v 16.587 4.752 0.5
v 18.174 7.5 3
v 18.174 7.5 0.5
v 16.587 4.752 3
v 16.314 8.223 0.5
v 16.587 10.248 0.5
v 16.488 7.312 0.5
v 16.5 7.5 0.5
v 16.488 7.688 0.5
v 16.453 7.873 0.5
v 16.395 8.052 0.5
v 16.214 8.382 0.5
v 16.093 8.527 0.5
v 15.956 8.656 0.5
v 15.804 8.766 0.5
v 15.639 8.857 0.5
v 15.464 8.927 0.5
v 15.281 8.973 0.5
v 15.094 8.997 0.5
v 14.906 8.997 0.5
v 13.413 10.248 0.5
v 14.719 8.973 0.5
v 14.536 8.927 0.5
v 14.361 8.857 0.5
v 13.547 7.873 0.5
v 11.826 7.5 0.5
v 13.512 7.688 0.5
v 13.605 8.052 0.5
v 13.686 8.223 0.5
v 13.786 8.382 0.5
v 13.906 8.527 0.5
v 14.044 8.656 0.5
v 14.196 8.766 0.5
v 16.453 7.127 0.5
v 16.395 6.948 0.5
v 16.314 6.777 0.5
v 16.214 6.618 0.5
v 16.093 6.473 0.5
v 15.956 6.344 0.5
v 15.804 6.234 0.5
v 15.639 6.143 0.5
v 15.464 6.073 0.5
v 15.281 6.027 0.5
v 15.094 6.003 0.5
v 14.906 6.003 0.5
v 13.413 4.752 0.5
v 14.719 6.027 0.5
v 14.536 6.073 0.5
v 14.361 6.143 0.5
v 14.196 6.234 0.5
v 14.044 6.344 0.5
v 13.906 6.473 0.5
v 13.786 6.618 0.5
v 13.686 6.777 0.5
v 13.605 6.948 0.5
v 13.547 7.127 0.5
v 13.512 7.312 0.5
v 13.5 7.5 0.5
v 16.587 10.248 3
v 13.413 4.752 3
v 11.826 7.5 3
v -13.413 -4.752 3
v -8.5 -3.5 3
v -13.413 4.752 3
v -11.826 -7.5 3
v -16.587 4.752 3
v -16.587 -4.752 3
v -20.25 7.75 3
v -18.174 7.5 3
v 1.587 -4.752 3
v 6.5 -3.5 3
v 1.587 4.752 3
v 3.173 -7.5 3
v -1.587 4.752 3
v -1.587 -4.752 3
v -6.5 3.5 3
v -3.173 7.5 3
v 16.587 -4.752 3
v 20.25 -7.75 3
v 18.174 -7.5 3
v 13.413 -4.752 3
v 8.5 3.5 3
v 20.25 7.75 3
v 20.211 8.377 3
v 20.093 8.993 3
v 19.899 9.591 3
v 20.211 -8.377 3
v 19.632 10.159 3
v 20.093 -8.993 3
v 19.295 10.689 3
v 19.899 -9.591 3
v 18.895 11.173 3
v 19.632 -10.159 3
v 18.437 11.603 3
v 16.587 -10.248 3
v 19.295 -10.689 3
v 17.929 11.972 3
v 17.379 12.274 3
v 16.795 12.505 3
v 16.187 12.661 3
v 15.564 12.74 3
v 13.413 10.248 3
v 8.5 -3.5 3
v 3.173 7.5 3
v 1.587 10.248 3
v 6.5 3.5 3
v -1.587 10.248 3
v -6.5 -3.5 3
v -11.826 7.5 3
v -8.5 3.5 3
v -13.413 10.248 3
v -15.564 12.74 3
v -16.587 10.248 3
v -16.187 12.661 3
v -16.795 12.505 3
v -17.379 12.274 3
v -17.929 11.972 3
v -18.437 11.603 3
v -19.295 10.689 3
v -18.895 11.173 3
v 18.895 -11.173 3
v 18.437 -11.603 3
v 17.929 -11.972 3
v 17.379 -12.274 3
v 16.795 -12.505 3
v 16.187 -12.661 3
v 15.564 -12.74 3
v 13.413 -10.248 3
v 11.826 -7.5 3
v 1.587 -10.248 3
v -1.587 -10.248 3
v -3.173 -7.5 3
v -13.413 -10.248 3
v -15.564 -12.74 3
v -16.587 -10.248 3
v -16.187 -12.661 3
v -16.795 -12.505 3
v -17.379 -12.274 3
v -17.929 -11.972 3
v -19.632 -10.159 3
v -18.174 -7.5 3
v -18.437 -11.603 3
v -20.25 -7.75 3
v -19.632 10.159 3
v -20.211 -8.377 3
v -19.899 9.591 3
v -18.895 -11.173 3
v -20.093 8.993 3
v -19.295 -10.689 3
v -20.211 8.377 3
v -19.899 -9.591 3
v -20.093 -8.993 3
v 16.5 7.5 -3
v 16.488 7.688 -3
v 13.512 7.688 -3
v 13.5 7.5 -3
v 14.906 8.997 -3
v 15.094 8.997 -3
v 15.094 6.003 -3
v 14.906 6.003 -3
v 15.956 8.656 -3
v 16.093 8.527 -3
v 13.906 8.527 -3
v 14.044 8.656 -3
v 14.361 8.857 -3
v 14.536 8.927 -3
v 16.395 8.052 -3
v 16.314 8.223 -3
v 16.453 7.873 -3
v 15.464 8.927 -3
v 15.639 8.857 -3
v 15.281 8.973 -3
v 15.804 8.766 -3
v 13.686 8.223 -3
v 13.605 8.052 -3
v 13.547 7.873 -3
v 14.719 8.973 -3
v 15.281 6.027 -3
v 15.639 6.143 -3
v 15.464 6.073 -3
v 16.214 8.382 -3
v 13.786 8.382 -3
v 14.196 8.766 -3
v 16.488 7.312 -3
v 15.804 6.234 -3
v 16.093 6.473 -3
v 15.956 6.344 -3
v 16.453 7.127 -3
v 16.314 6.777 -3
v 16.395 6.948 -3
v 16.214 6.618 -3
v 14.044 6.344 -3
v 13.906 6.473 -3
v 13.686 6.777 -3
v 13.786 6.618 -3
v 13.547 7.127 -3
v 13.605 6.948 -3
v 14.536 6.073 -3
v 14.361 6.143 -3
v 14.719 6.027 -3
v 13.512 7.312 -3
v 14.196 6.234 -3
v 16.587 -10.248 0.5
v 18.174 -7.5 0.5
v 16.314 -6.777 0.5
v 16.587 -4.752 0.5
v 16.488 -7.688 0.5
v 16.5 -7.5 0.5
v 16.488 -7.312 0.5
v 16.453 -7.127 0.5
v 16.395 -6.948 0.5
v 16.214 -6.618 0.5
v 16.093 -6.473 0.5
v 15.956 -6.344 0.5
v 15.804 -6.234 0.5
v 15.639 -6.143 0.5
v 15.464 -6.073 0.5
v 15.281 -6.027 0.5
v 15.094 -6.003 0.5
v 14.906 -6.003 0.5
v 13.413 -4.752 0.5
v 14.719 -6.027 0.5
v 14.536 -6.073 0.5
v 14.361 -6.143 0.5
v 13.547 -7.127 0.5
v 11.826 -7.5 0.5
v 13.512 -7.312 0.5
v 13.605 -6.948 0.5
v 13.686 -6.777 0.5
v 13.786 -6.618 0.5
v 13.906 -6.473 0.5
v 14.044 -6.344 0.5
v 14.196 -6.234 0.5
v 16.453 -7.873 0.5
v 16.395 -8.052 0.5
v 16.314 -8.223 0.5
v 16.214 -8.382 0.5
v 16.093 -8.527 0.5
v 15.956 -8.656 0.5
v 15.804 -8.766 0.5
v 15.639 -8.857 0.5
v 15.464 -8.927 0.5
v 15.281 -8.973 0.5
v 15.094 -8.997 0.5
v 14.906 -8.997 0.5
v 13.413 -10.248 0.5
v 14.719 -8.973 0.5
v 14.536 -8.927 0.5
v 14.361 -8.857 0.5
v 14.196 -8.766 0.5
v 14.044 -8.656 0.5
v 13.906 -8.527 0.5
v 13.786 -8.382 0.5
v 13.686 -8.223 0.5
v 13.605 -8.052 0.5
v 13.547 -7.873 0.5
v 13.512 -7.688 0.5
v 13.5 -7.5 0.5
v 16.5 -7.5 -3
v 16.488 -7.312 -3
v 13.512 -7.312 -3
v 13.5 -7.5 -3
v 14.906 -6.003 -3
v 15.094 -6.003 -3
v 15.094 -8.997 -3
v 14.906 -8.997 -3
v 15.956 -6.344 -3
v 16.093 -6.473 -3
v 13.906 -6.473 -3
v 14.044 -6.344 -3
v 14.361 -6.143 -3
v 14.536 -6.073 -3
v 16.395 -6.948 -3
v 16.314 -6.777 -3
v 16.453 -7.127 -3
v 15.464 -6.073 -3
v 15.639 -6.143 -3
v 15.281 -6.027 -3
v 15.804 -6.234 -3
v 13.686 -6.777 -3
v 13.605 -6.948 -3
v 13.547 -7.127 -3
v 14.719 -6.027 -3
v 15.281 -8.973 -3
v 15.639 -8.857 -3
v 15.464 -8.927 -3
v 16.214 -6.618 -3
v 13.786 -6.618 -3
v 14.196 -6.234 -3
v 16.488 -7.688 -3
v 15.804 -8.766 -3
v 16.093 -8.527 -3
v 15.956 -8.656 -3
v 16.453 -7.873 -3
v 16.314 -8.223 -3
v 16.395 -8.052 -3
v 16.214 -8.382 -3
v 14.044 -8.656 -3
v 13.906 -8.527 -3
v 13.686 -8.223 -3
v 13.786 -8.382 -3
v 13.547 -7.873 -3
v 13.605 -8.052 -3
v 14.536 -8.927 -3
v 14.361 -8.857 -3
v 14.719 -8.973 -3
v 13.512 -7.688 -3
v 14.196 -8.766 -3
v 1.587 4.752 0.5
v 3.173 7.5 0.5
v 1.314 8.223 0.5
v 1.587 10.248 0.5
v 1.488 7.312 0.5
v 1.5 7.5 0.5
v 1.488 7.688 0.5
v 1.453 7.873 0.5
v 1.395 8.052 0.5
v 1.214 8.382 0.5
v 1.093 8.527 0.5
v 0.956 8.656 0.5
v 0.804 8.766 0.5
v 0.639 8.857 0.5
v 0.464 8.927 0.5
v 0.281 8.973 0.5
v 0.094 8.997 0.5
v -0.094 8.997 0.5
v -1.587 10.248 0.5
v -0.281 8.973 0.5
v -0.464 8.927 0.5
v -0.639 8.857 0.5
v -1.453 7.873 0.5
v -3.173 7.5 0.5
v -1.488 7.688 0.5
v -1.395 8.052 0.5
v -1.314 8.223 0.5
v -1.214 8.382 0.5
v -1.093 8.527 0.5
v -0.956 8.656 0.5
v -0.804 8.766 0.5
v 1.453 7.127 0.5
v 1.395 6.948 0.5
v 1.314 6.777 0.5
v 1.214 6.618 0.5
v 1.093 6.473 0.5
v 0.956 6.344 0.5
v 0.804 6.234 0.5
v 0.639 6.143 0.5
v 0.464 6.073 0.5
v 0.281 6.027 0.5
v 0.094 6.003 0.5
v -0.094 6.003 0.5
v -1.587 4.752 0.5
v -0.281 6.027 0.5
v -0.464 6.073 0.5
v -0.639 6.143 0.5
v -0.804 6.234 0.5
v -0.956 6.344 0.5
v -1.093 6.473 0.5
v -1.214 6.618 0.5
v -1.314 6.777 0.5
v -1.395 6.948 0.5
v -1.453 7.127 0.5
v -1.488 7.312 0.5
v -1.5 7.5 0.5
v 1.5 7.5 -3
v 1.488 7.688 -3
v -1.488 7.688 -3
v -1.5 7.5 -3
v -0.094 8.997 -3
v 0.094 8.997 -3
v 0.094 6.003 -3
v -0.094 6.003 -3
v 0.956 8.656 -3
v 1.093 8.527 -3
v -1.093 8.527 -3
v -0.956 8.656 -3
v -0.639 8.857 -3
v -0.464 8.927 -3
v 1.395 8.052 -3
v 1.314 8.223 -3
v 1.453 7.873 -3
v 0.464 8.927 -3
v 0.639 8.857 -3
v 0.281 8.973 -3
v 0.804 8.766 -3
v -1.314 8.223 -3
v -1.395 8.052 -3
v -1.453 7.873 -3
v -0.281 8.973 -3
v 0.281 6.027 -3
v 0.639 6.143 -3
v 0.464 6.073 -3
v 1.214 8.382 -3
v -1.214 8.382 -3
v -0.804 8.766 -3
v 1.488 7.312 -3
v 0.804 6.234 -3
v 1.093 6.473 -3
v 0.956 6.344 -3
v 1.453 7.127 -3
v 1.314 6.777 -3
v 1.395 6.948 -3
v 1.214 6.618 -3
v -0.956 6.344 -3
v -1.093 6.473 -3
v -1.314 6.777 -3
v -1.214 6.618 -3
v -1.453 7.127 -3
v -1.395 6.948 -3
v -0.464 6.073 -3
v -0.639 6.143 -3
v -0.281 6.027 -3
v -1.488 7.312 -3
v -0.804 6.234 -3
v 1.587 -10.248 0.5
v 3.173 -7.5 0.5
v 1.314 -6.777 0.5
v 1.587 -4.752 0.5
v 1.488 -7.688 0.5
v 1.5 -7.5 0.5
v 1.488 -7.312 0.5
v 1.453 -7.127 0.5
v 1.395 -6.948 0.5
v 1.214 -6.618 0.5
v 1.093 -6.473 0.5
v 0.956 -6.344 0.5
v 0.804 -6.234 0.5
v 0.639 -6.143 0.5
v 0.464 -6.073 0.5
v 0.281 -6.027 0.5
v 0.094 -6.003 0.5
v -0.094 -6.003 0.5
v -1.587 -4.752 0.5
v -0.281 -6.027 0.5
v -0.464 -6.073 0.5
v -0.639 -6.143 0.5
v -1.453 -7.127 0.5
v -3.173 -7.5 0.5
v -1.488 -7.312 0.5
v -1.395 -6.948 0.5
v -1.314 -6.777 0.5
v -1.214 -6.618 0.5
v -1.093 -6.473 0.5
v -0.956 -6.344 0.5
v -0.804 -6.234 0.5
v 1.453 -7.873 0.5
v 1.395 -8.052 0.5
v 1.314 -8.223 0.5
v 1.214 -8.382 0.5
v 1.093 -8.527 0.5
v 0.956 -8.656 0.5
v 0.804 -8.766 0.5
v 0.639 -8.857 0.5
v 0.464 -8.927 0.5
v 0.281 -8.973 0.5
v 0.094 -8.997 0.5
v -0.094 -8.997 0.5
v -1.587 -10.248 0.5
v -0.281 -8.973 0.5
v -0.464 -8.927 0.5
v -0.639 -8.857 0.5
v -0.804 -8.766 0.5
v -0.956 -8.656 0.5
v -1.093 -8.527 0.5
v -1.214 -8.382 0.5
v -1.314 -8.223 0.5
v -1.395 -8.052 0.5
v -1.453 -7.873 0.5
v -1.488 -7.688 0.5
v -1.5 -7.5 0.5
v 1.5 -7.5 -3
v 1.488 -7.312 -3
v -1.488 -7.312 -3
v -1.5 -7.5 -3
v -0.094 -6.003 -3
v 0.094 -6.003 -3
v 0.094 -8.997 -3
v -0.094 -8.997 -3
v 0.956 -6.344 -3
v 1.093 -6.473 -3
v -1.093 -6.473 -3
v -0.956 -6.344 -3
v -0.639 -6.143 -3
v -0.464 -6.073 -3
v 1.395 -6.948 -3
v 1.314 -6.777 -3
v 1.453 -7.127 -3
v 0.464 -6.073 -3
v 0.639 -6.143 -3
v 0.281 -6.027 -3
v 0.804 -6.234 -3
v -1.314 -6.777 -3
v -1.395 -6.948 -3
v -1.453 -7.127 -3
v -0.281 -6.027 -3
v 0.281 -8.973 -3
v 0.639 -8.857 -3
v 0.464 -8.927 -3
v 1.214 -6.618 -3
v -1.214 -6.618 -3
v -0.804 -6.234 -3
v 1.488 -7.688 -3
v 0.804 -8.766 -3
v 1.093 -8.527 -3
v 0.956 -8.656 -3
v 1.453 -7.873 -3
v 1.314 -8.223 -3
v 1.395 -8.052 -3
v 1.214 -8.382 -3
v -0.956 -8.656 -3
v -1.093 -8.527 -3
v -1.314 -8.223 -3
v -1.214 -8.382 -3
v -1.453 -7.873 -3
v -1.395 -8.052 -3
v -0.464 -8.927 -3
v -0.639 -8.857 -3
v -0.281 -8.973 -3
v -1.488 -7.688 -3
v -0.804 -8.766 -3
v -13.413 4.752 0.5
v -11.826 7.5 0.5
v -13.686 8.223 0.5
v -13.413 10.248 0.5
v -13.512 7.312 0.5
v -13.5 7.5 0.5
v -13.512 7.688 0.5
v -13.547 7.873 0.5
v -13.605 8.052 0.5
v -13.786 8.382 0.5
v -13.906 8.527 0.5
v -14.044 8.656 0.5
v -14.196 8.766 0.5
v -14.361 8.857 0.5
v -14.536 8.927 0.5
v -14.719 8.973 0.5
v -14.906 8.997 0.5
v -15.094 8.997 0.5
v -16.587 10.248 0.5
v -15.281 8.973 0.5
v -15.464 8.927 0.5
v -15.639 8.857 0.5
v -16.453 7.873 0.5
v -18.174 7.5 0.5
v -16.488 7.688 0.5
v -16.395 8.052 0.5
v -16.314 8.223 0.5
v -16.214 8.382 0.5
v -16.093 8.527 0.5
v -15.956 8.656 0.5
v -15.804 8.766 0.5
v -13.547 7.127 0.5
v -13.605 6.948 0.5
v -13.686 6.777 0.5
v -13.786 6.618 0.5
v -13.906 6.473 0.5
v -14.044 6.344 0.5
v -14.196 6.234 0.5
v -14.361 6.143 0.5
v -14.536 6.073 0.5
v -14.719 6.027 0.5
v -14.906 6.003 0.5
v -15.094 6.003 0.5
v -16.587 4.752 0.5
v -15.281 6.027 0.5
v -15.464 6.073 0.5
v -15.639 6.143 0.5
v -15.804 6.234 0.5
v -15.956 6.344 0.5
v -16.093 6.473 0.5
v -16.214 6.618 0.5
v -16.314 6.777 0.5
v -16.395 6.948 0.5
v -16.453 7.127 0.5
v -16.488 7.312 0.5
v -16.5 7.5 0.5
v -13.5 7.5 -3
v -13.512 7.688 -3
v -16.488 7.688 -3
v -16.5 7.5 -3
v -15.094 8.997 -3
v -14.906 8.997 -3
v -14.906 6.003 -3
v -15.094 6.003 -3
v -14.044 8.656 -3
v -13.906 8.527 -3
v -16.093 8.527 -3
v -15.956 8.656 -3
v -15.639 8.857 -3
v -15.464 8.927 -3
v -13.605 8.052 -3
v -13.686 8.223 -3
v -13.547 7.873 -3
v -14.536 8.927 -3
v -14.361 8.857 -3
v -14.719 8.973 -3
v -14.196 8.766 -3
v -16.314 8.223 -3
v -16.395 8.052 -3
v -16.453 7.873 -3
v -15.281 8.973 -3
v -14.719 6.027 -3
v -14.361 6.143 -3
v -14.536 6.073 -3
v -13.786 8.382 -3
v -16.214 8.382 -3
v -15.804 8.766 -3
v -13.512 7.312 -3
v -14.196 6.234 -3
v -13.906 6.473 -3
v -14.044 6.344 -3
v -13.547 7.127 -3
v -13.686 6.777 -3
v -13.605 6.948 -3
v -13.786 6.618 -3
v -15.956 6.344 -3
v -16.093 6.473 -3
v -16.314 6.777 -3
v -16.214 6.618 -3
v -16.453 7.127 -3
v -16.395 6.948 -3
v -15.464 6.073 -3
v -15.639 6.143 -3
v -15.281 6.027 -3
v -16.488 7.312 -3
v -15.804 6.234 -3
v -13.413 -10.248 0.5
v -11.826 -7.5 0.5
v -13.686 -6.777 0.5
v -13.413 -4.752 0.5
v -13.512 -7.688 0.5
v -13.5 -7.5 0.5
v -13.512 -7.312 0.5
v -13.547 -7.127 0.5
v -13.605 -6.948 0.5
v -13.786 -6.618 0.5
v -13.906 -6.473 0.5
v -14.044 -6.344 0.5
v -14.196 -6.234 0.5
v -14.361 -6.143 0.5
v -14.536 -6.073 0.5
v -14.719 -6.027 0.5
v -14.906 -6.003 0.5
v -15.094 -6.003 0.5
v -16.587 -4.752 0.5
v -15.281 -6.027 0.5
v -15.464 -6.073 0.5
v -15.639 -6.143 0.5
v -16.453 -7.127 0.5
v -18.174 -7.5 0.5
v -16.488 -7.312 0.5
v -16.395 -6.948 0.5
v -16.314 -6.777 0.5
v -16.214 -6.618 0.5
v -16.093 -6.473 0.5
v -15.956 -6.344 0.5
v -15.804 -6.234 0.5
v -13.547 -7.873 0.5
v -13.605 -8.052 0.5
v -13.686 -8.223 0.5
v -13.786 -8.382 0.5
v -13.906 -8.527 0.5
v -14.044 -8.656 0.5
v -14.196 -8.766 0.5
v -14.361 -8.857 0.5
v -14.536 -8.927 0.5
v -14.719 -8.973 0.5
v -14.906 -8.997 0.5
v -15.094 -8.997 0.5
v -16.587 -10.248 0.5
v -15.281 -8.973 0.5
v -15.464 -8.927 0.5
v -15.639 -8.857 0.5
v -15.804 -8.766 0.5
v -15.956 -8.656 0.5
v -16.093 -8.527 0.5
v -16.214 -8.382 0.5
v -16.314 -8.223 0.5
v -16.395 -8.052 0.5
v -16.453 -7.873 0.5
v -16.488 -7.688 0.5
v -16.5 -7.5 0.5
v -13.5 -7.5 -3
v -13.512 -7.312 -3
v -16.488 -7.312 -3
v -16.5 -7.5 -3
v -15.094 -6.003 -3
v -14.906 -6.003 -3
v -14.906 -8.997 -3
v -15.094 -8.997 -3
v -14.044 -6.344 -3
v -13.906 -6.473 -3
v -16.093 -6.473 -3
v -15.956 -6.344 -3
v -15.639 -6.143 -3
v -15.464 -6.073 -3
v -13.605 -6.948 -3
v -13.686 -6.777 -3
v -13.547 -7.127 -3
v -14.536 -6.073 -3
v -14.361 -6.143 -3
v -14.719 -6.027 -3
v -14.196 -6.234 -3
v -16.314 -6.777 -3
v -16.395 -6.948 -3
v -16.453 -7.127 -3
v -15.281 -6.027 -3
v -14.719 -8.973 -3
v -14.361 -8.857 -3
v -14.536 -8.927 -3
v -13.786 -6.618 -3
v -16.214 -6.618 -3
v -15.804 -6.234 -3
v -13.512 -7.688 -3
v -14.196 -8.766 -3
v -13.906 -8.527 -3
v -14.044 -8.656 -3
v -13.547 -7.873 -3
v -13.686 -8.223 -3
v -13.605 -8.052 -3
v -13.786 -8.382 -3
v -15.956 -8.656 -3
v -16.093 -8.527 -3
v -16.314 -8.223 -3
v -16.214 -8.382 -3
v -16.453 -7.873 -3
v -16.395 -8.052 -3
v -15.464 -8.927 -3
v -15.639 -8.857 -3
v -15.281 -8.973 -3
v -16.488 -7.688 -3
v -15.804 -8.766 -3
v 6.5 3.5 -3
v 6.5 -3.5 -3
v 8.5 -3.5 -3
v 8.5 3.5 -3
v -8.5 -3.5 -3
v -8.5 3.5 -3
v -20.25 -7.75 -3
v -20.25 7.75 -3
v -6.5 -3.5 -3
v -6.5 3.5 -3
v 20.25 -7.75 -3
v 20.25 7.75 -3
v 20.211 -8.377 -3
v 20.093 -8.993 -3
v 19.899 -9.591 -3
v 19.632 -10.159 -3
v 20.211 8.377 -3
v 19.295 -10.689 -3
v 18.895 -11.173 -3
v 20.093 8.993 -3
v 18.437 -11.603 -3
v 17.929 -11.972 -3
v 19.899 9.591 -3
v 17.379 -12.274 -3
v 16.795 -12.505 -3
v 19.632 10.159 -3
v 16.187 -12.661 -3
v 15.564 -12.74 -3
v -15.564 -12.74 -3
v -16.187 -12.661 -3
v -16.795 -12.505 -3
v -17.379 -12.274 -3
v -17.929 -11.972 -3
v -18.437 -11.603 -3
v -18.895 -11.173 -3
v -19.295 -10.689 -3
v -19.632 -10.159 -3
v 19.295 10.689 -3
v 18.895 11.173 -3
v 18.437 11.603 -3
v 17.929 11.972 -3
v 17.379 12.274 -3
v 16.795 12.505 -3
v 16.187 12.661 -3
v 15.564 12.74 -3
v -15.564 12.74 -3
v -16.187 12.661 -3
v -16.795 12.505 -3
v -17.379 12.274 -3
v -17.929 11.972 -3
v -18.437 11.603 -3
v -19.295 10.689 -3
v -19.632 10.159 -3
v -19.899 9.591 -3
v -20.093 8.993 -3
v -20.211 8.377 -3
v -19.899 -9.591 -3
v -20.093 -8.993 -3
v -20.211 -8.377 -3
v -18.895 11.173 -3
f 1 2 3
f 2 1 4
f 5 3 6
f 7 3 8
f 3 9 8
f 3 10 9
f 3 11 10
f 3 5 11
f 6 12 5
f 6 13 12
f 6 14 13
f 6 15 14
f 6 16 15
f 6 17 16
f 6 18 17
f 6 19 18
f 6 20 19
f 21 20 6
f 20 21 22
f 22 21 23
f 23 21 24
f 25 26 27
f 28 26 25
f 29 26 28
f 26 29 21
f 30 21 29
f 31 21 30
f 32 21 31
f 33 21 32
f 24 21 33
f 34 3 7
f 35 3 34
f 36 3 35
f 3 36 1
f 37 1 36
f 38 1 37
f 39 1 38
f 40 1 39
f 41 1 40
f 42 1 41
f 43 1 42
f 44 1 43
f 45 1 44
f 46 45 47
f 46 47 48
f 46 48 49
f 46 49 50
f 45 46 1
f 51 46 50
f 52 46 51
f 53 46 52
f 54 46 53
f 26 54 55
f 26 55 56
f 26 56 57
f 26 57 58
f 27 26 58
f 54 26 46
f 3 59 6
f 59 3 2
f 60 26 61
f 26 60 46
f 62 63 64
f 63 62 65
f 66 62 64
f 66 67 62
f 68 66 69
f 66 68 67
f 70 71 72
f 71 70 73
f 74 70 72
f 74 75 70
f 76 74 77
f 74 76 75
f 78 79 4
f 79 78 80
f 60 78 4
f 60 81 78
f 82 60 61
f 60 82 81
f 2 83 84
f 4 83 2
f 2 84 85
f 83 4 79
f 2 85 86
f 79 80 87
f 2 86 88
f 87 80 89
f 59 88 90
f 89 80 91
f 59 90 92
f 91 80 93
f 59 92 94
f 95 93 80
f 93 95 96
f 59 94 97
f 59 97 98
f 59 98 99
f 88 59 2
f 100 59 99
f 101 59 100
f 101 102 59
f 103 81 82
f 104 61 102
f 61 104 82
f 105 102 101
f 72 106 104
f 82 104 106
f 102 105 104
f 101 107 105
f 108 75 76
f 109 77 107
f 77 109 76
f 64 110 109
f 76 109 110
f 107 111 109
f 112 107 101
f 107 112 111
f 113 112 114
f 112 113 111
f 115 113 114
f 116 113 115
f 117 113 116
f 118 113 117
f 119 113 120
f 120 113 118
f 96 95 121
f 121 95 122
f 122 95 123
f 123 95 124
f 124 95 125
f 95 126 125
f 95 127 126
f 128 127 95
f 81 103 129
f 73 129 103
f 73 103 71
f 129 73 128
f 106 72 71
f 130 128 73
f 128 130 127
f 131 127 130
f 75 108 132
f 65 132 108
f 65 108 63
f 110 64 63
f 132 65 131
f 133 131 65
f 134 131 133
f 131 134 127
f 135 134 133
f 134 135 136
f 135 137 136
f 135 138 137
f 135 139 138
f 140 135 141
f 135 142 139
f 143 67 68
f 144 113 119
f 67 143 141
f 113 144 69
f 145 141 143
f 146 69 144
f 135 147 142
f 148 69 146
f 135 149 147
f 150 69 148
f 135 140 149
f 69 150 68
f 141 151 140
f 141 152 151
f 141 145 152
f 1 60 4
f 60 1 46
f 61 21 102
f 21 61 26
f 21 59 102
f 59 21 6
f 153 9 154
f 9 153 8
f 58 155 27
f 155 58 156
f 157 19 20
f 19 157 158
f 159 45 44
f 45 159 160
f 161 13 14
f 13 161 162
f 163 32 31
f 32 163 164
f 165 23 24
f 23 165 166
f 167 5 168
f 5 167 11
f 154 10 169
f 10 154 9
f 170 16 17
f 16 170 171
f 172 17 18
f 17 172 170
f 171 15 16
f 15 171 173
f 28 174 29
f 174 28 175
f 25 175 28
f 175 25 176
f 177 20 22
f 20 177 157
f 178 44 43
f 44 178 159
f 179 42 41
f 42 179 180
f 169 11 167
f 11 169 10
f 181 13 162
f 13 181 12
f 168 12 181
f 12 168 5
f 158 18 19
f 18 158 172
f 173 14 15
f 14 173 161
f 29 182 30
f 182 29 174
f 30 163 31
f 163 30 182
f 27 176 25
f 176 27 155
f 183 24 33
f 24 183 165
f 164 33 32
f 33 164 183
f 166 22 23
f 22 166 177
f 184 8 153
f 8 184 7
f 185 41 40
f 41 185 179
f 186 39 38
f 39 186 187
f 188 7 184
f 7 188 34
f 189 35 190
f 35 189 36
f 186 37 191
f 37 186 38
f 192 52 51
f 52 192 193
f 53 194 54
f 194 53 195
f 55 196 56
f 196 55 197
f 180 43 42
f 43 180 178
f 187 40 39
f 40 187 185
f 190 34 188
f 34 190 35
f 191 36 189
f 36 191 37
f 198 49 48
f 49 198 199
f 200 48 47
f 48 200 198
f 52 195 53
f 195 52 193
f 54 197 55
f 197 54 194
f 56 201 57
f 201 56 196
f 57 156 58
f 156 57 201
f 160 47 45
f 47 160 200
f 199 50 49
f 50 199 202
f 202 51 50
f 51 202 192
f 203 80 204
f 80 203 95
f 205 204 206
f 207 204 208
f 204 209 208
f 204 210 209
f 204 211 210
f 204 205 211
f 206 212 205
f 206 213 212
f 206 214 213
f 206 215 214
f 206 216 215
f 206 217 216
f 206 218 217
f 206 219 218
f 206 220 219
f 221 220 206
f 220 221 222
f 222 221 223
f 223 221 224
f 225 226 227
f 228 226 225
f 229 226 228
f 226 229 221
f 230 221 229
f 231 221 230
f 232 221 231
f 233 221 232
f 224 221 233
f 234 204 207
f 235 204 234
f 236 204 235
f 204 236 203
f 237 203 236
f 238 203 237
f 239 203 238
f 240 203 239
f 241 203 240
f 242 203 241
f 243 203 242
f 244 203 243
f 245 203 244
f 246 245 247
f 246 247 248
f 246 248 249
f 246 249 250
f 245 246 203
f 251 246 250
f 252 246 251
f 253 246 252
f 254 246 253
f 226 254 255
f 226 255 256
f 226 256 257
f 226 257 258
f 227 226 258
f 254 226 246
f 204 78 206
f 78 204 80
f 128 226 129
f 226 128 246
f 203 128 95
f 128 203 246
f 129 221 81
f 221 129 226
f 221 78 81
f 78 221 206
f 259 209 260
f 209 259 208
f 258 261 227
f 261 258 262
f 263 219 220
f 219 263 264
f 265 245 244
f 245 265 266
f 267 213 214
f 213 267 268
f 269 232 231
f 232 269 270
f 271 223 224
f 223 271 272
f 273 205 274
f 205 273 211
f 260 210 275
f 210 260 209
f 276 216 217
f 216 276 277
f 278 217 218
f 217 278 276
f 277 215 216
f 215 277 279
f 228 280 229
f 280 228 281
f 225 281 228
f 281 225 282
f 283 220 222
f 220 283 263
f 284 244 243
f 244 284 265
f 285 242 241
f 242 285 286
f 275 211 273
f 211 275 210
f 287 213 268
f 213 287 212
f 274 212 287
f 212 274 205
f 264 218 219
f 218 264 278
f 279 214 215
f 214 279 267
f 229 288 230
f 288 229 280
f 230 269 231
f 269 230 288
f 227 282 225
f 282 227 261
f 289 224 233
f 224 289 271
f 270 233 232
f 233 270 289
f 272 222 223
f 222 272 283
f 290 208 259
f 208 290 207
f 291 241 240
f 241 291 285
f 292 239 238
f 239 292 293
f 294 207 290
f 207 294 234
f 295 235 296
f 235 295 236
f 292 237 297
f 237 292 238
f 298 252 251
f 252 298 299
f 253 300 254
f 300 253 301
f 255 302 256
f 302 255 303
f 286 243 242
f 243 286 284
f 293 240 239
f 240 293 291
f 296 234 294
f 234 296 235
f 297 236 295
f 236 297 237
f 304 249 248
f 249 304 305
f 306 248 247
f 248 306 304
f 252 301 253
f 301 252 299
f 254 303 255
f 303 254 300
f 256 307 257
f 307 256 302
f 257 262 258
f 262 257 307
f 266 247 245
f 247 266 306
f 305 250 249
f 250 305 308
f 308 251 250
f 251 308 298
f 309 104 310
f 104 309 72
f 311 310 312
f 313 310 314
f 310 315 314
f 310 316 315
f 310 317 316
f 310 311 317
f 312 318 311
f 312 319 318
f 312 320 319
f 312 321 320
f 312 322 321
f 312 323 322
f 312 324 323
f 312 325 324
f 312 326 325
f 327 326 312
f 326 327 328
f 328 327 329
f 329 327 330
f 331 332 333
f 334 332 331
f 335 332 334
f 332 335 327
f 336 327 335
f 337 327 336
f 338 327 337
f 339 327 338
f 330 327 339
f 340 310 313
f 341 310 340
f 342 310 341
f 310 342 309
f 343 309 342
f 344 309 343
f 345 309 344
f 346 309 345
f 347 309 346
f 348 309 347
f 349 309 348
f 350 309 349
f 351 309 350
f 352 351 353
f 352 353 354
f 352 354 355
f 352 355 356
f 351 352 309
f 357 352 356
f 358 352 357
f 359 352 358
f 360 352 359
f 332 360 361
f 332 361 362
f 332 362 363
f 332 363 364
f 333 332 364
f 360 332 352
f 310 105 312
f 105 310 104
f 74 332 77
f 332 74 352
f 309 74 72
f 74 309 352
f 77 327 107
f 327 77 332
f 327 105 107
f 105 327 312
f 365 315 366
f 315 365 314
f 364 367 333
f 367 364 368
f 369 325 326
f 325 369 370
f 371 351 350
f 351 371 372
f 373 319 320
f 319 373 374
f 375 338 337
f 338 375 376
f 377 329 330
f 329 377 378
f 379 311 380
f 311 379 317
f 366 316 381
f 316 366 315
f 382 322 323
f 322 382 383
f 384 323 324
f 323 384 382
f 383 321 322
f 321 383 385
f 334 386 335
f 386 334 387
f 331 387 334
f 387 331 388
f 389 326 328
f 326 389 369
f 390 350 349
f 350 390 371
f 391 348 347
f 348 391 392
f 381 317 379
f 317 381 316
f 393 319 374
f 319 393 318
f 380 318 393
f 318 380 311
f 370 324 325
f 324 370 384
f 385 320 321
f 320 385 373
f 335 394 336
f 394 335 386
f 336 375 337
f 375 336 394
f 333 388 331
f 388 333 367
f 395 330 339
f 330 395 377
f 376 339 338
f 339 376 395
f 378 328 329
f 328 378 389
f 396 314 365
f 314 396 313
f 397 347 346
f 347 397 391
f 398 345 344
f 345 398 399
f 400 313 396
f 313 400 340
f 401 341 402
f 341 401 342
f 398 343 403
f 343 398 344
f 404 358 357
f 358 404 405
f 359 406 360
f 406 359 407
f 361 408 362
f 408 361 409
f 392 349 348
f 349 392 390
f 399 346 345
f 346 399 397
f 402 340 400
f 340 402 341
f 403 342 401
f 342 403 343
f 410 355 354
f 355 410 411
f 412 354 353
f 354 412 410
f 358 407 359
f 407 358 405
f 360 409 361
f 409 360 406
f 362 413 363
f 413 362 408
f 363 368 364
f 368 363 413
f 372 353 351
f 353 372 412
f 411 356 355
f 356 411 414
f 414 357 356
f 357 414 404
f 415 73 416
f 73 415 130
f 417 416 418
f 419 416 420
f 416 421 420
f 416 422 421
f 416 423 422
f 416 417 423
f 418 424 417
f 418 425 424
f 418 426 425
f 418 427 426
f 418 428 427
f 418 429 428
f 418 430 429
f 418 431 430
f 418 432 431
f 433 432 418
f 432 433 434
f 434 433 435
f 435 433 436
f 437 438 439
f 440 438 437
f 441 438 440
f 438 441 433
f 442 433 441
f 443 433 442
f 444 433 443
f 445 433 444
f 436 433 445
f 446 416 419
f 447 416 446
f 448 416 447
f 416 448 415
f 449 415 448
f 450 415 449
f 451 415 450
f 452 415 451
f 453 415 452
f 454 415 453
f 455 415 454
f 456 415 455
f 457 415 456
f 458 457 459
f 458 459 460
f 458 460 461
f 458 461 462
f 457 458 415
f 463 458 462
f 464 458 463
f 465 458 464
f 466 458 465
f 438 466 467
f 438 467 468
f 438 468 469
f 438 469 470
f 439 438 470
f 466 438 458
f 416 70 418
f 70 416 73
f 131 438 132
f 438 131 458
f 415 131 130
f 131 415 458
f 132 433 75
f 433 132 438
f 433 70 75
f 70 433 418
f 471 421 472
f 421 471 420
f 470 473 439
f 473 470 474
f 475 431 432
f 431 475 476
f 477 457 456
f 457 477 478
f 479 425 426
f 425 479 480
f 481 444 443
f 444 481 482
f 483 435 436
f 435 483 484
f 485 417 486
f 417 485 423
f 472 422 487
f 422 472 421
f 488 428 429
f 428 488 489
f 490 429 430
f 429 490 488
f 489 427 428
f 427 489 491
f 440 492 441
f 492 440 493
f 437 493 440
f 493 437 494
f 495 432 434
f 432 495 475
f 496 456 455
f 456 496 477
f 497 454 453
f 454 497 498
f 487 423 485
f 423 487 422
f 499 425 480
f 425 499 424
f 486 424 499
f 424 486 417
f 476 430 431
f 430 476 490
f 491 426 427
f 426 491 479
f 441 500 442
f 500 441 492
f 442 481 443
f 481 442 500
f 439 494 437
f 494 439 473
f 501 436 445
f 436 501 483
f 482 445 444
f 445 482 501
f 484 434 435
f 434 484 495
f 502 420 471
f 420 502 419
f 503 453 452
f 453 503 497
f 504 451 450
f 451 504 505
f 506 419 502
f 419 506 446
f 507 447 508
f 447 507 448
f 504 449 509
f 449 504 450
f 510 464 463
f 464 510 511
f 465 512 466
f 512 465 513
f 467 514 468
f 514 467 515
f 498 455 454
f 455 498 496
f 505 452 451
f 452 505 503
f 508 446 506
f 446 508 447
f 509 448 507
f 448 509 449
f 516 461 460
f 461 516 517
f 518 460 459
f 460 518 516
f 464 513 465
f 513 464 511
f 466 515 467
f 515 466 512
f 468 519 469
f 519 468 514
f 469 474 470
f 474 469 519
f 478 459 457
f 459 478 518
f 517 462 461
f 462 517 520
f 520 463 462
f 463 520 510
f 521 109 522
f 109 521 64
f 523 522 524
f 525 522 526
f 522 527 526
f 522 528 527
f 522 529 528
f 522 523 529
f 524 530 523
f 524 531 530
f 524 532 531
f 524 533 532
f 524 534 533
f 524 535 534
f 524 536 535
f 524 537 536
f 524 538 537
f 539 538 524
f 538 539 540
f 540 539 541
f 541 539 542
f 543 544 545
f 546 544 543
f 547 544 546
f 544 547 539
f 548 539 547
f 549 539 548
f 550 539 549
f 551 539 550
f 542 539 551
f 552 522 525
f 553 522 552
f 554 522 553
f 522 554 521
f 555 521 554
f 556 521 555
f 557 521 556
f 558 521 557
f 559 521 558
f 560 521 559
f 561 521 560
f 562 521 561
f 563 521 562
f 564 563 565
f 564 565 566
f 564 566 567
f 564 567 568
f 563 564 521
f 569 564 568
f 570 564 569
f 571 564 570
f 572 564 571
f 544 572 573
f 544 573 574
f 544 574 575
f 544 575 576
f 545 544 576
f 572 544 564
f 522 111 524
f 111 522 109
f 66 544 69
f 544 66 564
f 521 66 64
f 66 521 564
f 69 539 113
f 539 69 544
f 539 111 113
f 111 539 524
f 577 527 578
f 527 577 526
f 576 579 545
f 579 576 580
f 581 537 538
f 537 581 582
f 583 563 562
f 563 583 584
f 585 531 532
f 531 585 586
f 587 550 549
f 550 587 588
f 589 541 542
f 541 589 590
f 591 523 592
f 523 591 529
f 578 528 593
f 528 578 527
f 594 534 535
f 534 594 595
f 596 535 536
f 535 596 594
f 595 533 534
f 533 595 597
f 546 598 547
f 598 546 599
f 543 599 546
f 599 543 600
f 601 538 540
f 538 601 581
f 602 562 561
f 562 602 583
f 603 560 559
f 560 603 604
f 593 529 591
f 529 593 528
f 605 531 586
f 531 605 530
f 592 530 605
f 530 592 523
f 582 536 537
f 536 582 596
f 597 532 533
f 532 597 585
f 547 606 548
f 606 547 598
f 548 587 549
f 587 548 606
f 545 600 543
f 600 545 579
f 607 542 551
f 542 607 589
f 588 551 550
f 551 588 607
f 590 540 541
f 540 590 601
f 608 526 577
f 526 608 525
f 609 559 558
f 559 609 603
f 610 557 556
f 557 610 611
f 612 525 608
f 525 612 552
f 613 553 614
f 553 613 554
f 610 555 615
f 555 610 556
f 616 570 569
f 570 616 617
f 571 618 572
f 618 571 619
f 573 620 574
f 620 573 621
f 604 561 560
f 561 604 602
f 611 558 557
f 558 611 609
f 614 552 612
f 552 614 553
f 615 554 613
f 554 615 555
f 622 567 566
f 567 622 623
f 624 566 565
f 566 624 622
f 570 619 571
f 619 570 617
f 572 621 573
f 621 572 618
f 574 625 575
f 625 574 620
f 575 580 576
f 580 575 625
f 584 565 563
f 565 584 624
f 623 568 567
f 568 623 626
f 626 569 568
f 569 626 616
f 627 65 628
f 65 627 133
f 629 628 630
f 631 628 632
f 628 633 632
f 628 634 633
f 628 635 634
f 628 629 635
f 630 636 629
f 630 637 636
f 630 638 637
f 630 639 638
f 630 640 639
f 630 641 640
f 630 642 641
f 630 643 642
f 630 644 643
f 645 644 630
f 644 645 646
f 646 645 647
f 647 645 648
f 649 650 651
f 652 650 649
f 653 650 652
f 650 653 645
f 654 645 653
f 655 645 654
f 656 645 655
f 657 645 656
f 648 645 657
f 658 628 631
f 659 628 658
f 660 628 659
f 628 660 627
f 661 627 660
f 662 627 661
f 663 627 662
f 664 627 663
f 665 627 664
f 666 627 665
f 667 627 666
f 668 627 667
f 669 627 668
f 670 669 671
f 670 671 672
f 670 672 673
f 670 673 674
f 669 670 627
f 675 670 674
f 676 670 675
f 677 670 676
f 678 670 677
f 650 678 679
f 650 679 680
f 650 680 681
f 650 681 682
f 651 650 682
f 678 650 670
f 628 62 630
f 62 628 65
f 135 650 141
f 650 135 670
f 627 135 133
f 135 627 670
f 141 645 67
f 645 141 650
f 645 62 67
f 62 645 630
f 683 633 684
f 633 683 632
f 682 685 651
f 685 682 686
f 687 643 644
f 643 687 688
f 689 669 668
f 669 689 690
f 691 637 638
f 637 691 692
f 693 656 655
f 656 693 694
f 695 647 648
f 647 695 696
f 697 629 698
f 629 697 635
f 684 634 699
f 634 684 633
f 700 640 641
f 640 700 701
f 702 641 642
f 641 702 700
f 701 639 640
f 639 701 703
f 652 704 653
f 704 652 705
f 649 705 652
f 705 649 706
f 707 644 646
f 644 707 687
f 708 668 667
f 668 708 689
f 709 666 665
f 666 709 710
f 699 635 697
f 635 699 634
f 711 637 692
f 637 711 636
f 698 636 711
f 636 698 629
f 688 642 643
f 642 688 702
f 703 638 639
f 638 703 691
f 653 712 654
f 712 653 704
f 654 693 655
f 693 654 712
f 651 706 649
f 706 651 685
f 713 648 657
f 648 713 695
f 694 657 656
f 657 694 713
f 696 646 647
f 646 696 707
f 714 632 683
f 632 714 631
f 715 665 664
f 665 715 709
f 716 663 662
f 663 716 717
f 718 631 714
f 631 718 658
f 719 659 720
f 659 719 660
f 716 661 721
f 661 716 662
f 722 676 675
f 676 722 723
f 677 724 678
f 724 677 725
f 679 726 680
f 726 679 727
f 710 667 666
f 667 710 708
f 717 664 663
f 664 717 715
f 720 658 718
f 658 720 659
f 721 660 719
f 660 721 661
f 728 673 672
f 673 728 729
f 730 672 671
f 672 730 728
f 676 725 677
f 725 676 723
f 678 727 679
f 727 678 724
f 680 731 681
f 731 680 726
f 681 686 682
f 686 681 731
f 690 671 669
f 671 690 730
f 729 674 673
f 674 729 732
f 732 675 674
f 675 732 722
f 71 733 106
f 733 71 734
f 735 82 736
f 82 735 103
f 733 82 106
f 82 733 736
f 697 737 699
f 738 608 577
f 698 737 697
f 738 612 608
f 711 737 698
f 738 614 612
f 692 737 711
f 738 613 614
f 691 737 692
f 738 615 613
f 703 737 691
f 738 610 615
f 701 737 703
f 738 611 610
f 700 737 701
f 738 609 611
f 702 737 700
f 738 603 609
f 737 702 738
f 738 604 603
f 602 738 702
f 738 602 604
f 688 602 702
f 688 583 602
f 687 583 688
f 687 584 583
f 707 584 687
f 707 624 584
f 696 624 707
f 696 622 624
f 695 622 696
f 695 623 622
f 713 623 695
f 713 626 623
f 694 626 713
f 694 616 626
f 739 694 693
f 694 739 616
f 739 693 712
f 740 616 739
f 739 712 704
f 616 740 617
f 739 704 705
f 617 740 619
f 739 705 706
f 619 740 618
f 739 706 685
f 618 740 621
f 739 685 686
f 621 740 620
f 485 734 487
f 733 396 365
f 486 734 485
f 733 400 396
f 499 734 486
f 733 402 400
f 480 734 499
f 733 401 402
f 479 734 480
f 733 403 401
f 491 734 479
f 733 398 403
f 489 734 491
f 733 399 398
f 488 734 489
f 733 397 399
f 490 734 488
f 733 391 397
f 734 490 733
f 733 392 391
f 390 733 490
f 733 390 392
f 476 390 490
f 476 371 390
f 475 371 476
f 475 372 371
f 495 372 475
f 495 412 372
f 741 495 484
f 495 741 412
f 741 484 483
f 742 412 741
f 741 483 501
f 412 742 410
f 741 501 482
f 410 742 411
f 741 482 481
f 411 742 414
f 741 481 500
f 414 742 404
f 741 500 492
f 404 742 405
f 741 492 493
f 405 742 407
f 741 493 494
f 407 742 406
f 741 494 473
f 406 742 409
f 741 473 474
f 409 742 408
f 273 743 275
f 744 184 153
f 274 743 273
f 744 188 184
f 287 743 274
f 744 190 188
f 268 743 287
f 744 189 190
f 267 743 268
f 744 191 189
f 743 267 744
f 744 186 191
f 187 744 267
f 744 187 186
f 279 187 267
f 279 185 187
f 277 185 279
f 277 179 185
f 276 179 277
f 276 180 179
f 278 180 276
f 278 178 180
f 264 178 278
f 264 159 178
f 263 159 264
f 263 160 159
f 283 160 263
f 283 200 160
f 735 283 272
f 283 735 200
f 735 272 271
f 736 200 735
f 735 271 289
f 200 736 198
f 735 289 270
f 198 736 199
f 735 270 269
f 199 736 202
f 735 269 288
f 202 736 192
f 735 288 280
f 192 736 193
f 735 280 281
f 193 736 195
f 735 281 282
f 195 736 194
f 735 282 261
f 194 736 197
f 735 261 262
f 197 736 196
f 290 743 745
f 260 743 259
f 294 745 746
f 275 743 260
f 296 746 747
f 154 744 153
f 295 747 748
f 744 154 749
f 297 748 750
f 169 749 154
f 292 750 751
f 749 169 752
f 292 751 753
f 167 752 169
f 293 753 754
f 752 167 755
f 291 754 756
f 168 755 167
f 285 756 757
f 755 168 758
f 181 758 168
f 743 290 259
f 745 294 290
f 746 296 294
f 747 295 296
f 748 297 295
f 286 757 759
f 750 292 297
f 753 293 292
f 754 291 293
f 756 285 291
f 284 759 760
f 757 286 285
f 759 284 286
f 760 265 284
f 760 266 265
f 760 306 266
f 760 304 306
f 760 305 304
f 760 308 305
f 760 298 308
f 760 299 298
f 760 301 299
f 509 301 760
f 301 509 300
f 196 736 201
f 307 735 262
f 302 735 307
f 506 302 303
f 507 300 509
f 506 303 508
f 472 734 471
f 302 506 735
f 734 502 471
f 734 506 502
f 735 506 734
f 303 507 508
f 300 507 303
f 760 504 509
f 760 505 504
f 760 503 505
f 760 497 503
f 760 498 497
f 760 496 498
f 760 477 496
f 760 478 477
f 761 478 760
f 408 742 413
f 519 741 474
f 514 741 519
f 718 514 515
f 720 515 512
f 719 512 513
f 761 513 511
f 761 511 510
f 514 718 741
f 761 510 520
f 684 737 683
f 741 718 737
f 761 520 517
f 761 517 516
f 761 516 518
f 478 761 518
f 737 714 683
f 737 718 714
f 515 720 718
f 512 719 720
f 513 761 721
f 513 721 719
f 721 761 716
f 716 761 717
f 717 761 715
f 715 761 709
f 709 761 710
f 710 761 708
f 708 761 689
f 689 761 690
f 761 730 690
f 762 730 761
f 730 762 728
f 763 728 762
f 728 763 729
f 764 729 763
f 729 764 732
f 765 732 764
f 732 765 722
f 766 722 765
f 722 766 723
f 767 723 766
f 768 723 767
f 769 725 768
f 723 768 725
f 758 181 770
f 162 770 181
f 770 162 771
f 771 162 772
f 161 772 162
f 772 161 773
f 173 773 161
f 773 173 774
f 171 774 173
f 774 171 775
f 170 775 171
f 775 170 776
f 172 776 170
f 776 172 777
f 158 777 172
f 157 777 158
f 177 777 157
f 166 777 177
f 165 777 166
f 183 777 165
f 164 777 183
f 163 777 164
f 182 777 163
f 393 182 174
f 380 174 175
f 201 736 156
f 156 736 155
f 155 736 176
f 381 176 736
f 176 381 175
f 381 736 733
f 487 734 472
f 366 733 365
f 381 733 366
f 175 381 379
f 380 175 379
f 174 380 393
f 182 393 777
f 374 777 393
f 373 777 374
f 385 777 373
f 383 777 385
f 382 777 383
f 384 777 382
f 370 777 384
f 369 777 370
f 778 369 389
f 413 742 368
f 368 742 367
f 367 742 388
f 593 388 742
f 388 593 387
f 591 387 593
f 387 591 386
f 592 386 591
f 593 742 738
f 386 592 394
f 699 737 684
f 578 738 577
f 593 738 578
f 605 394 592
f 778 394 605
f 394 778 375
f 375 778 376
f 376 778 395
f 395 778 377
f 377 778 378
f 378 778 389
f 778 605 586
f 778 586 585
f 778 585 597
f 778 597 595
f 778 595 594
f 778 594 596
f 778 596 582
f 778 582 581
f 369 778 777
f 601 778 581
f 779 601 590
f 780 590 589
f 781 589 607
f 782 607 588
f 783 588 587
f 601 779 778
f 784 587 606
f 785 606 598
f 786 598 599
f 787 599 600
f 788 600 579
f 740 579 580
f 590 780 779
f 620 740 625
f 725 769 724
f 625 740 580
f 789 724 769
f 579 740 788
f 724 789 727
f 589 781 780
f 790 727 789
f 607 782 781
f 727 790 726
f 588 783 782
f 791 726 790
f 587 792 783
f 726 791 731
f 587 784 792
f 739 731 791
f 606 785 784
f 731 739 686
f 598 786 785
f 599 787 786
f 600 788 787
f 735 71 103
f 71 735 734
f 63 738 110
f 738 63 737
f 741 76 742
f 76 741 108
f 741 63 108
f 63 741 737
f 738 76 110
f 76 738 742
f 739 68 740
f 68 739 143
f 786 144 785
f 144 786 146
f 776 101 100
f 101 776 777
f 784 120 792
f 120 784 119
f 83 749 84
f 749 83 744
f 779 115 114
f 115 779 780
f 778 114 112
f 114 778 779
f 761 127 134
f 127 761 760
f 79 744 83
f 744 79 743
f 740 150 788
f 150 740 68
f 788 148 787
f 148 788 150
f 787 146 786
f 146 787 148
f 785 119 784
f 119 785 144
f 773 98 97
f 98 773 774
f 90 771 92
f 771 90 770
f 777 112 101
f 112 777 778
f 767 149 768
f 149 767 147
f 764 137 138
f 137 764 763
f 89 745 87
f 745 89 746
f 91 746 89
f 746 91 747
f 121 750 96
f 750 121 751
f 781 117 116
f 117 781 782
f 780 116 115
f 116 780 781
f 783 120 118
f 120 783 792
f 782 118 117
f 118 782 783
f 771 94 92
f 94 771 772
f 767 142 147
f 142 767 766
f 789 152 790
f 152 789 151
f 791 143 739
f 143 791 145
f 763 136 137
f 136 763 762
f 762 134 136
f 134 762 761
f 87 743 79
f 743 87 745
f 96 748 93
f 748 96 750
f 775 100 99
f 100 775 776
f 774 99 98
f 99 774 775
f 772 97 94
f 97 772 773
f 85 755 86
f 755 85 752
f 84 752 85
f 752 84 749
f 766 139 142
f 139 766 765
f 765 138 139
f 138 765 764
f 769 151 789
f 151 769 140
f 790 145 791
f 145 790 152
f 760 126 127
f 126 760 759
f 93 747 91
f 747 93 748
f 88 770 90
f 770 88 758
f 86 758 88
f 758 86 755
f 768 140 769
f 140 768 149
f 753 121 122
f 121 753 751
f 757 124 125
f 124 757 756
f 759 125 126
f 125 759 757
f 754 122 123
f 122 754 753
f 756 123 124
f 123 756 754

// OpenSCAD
$fn = 50;


difference() {
	union() {
		translate(v = [0, 0, -3.0000000000]) {
			hull() {
				translate(v = [-15.2500000000, 7.7500000000, 0]) {
					cylinder(h = 6, r = 5);
				}
				translate(v = [15.2500000000, 7.7500000000, 0]) {
					cylinder(h = 6, r = 5);
				}
				translate(v = [-15.2500000000, -7.7500000000, 0]) {
					cylinder(h = 6, r = 5);
				}
				translate(v = [15.2500000000, -7.7500000000, 0]) {
					cylinder(h = 6, r = 5);
				}
			}
		}
	}
	union() {
		translate(v = [15, 7.5000000000, 3.0000000000]) {
			rotate(a = [0, 0, 0]) {
				difference() {
					union() {
						translate(v = [0, 0, -2.5000000000]) {
							linear_extrude(height = 2.5000000000) {
								polygon(points = [[3.1735000000, 0.0000000000], [1.5867500000, 2.7483316189], [-1.5867500000, 2.7483316189], [-3.1735000000, 0.0000000000], [-1.5867500000, -2.7483316189], [1.5867500000, -2.7483316189]]);
							}
						}
						translate(v = [0, 0, -50.0000000000]) {
							cylinder(h = 100, r = 1.5000000000);
						}
						translate(v = [0, 0, -50.0000000000]) {
							cylinder(h = 100, r = 1.5000000000);
						}
						translate(v = [0, 0, -50.0000000000]) {
							cylinder(h = 100, r = 1.5000000000);
						}
					}
					union();
				}
			}
		}
		translate(v = [15, -7.5000000000, 3.0000000000]) {
			rotate(a = [0, 0, 0]) {
				difference() {
					union() {
						translate(v = [0, 0, -2.5000000000]) {
							linear_extrude(height = 2.5000000000) {
								polygon(points = [[3.1735000000, 0.0000000000], [1.5867500000, 2.7483316189], [-1.5867500000, 2.7483316189], [-3.1735000000, 0.0000000000], [-1.5867500000, -2.7483316189], [1.5867500000, -2.7483316189]]);
							}
						}
						translate(v = [0, 0, -50.0000000000]) {
							cylinder(h = 100, r = 1.5000000000);
						}
						translate(v = [0, 0, -50.0000000000]) {
							cylinder(h = 100, r = 1.5000000000);
						}
						translate(v = [0, 0, -50.0000000000]) {
							cylinder(h = 100, r = 1.5000000000);
						}
					}
					union();
				}
			}
		}
		translate(v = [0, 7.5000000000, 3.0000000000]) {
			rotate(a = [0, 0, 0]) {
				difference() {
					union() {
						translate(v = [0, 0, -2.5000000000]) {
							linear_extrude(height = 2.5000000000) {
								polygon(points = [[3.1735000000, 0.0000000000], [1.5867500000, 2.7483316189], [-1.5867500000, 2.7483316189], [-3.1735000000, 0.0000000000], [-1.5867500000, -2.7483316189], [1.5867500000, -2.7483316189]]);
							}
						}
						translate(v = [0, 0, -50.0000000000]) {
							cylinder(h = 100, r = 1.5000000000);
						}
						translate(v = [0, 0, -50.0000000000]) {
							cylinder(h = 100, r = 1.5000000000);
						}
						translate(v = [0, 0, -50.0000000000]) {
							cylinder(h = 100, r = 1.5000000000);
						}
					}
					union();
				}
			}
		}
		translate(v = [0, -7.5000000000, 3.0000000000]) {
			rotate(a = [0, 0, 0]) {
				difference() {
					union() {
						translate(v = [0, 0, -2.5000000000]) {
							linear_extrude(height = 2.5000000000) {
								polygon(points = [[3.1735000000, 0.0000000000], [1.5867500000, 2.7483316189], [-1.5867500000, 2.7483316189], [-3.1735000000, 0.0000000000], [-1.5867500000, -2.7483316189], [1.5867500000, -2.7483316189]]);
							}
						}
						translate(v = [0, 0, -50.0000000000]) {
							cylinder(h = 100, r = 1.5000000000);
						}
						translate(v = [0, 0, -50.0000000000]) {
							cylinder(h = 100, r = 1.5000000000);
						}
						translate(v = [0, 0, -50.0000000000]) {
							cylinder(h = 100, r = 1.5000000000);
						}
					}
					union();
				}
			}
		}
		translate(v = [-15, 7.5000000000, 3.0000000000]) {
			rotate(a = [0, 0, 0]) {
				difference() {
					union() {
						translate(v = [0, 0, -2.5000000000]) {
							linear_extrude(height = 2.5000000000) {
								polygon(points = [[3.1735000000, 0.0000000000], [1.5867500000, 2.7483316189], [-1.5867500000, 2.7483316189], [-3.1735000000, 0.0000000000], [-1.5867500000, -2.7483316189], [1.5867500000, -2.7483316189]]);
							}
						}
						translate(v = [0, 0, -50.0000000000]) {
							cylinder(h = 100, r = 1.5000000000);
						}
						translate(v = [0, 0, -50.0000000000]) {
							cylinder(h = 100, r = 1.5000000000);
						}
						translate(v = [0, 0, -50.0000000000]) {
							cylinder(h = 100, r = 1.5000000000);
						}
					}
					union();
				}
			}
		}
		translate(v = [-15, -7.5000000000, 3.0000000000]) {
			rotate(a = [0, 0, 0]) {
				difference() {
					union() {
						translate(v = [0, 0, -2.5000000000]) {
							linear_extrude(height = 2.5000000000) {
								polygon(points = [[3.1735000000, 0.0000000000], [1.5867500000, 2.7483316189], [-1.5867500000, 2.7483316189], [-3.1735000000, 0.0000000000], [-1.5867500000, -2.7483316189], [1.5867500000, -2.7483316189]]);
							}
						}
						translate(v = [0, 0, -50.0000000000]) {
							cylinder(h = 100, r = 1.5000000000);
						}
						translate(v = [0, 0, -50.0000000000]) {
							cylinder(h = 100, r = 1.5000000000);
						}
						translate(v = [0, 0, -50.0000000000]) {
							cylinder(h = 100, r = 1.5000000000);
						}
					}
					union();
				}
			}
		}
		#translate(v = [6.5000000000, -3.5000000000, -3.0000000000]) {
			cube(size = [2, 7, 6]);
		}
		#translate(v = [-8.5000000000, -3.5000000000, -3.0000000000]) {
			cube(size = [2, 7, 6]);
		}
	}
}
